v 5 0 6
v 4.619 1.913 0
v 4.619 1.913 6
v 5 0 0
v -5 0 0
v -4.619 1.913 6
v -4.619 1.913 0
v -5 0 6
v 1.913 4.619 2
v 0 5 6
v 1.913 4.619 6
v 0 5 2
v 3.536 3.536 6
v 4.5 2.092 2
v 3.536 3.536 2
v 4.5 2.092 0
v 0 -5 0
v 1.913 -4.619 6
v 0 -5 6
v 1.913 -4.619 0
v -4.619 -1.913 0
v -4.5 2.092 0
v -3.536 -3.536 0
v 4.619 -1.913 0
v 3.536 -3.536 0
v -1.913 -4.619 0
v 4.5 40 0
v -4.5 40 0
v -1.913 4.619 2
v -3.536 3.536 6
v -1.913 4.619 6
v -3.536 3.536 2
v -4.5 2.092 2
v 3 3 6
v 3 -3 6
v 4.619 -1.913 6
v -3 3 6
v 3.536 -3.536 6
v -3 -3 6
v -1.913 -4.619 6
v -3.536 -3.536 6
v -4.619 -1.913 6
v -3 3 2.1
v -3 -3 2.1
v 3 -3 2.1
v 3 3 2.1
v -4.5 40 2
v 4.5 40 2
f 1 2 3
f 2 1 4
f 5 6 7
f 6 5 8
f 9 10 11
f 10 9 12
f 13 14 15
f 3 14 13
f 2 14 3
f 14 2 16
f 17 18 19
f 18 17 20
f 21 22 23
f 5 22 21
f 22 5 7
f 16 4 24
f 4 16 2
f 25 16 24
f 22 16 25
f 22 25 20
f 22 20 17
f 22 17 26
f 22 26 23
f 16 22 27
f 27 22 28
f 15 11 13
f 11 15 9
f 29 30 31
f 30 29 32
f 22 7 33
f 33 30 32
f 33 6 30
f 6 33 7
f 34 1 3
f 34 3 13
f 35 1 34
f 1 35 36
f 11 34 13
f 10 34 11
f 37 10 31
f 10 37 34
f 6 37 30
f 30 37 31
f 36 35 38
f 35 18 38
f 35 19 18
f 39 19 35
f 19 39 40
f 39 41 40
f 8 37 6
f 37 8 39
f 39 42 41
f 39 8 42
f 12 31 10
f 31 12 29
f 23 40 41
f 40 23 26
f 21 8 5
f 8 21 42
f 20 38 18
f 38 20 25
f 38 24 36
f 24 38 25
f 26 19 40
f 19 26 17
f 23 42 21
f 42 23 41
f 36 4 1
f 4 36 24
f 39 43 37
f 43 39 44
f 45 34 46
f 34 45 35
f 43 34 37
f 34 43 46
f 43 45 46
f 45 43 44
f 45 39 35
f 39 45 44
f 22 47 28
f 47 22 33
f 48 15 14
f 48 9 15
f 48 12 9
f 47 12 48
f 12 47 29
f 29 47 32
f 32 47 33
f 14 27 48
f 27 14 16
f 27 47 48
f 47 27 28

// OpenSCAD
difference() {
    cylinder(6, r=5);
    translate([-3, -3, 2.1]) cube([6, 6, 5]);
}
translate([-4.5, 0, 0]) cube([9, 40, 2]);
